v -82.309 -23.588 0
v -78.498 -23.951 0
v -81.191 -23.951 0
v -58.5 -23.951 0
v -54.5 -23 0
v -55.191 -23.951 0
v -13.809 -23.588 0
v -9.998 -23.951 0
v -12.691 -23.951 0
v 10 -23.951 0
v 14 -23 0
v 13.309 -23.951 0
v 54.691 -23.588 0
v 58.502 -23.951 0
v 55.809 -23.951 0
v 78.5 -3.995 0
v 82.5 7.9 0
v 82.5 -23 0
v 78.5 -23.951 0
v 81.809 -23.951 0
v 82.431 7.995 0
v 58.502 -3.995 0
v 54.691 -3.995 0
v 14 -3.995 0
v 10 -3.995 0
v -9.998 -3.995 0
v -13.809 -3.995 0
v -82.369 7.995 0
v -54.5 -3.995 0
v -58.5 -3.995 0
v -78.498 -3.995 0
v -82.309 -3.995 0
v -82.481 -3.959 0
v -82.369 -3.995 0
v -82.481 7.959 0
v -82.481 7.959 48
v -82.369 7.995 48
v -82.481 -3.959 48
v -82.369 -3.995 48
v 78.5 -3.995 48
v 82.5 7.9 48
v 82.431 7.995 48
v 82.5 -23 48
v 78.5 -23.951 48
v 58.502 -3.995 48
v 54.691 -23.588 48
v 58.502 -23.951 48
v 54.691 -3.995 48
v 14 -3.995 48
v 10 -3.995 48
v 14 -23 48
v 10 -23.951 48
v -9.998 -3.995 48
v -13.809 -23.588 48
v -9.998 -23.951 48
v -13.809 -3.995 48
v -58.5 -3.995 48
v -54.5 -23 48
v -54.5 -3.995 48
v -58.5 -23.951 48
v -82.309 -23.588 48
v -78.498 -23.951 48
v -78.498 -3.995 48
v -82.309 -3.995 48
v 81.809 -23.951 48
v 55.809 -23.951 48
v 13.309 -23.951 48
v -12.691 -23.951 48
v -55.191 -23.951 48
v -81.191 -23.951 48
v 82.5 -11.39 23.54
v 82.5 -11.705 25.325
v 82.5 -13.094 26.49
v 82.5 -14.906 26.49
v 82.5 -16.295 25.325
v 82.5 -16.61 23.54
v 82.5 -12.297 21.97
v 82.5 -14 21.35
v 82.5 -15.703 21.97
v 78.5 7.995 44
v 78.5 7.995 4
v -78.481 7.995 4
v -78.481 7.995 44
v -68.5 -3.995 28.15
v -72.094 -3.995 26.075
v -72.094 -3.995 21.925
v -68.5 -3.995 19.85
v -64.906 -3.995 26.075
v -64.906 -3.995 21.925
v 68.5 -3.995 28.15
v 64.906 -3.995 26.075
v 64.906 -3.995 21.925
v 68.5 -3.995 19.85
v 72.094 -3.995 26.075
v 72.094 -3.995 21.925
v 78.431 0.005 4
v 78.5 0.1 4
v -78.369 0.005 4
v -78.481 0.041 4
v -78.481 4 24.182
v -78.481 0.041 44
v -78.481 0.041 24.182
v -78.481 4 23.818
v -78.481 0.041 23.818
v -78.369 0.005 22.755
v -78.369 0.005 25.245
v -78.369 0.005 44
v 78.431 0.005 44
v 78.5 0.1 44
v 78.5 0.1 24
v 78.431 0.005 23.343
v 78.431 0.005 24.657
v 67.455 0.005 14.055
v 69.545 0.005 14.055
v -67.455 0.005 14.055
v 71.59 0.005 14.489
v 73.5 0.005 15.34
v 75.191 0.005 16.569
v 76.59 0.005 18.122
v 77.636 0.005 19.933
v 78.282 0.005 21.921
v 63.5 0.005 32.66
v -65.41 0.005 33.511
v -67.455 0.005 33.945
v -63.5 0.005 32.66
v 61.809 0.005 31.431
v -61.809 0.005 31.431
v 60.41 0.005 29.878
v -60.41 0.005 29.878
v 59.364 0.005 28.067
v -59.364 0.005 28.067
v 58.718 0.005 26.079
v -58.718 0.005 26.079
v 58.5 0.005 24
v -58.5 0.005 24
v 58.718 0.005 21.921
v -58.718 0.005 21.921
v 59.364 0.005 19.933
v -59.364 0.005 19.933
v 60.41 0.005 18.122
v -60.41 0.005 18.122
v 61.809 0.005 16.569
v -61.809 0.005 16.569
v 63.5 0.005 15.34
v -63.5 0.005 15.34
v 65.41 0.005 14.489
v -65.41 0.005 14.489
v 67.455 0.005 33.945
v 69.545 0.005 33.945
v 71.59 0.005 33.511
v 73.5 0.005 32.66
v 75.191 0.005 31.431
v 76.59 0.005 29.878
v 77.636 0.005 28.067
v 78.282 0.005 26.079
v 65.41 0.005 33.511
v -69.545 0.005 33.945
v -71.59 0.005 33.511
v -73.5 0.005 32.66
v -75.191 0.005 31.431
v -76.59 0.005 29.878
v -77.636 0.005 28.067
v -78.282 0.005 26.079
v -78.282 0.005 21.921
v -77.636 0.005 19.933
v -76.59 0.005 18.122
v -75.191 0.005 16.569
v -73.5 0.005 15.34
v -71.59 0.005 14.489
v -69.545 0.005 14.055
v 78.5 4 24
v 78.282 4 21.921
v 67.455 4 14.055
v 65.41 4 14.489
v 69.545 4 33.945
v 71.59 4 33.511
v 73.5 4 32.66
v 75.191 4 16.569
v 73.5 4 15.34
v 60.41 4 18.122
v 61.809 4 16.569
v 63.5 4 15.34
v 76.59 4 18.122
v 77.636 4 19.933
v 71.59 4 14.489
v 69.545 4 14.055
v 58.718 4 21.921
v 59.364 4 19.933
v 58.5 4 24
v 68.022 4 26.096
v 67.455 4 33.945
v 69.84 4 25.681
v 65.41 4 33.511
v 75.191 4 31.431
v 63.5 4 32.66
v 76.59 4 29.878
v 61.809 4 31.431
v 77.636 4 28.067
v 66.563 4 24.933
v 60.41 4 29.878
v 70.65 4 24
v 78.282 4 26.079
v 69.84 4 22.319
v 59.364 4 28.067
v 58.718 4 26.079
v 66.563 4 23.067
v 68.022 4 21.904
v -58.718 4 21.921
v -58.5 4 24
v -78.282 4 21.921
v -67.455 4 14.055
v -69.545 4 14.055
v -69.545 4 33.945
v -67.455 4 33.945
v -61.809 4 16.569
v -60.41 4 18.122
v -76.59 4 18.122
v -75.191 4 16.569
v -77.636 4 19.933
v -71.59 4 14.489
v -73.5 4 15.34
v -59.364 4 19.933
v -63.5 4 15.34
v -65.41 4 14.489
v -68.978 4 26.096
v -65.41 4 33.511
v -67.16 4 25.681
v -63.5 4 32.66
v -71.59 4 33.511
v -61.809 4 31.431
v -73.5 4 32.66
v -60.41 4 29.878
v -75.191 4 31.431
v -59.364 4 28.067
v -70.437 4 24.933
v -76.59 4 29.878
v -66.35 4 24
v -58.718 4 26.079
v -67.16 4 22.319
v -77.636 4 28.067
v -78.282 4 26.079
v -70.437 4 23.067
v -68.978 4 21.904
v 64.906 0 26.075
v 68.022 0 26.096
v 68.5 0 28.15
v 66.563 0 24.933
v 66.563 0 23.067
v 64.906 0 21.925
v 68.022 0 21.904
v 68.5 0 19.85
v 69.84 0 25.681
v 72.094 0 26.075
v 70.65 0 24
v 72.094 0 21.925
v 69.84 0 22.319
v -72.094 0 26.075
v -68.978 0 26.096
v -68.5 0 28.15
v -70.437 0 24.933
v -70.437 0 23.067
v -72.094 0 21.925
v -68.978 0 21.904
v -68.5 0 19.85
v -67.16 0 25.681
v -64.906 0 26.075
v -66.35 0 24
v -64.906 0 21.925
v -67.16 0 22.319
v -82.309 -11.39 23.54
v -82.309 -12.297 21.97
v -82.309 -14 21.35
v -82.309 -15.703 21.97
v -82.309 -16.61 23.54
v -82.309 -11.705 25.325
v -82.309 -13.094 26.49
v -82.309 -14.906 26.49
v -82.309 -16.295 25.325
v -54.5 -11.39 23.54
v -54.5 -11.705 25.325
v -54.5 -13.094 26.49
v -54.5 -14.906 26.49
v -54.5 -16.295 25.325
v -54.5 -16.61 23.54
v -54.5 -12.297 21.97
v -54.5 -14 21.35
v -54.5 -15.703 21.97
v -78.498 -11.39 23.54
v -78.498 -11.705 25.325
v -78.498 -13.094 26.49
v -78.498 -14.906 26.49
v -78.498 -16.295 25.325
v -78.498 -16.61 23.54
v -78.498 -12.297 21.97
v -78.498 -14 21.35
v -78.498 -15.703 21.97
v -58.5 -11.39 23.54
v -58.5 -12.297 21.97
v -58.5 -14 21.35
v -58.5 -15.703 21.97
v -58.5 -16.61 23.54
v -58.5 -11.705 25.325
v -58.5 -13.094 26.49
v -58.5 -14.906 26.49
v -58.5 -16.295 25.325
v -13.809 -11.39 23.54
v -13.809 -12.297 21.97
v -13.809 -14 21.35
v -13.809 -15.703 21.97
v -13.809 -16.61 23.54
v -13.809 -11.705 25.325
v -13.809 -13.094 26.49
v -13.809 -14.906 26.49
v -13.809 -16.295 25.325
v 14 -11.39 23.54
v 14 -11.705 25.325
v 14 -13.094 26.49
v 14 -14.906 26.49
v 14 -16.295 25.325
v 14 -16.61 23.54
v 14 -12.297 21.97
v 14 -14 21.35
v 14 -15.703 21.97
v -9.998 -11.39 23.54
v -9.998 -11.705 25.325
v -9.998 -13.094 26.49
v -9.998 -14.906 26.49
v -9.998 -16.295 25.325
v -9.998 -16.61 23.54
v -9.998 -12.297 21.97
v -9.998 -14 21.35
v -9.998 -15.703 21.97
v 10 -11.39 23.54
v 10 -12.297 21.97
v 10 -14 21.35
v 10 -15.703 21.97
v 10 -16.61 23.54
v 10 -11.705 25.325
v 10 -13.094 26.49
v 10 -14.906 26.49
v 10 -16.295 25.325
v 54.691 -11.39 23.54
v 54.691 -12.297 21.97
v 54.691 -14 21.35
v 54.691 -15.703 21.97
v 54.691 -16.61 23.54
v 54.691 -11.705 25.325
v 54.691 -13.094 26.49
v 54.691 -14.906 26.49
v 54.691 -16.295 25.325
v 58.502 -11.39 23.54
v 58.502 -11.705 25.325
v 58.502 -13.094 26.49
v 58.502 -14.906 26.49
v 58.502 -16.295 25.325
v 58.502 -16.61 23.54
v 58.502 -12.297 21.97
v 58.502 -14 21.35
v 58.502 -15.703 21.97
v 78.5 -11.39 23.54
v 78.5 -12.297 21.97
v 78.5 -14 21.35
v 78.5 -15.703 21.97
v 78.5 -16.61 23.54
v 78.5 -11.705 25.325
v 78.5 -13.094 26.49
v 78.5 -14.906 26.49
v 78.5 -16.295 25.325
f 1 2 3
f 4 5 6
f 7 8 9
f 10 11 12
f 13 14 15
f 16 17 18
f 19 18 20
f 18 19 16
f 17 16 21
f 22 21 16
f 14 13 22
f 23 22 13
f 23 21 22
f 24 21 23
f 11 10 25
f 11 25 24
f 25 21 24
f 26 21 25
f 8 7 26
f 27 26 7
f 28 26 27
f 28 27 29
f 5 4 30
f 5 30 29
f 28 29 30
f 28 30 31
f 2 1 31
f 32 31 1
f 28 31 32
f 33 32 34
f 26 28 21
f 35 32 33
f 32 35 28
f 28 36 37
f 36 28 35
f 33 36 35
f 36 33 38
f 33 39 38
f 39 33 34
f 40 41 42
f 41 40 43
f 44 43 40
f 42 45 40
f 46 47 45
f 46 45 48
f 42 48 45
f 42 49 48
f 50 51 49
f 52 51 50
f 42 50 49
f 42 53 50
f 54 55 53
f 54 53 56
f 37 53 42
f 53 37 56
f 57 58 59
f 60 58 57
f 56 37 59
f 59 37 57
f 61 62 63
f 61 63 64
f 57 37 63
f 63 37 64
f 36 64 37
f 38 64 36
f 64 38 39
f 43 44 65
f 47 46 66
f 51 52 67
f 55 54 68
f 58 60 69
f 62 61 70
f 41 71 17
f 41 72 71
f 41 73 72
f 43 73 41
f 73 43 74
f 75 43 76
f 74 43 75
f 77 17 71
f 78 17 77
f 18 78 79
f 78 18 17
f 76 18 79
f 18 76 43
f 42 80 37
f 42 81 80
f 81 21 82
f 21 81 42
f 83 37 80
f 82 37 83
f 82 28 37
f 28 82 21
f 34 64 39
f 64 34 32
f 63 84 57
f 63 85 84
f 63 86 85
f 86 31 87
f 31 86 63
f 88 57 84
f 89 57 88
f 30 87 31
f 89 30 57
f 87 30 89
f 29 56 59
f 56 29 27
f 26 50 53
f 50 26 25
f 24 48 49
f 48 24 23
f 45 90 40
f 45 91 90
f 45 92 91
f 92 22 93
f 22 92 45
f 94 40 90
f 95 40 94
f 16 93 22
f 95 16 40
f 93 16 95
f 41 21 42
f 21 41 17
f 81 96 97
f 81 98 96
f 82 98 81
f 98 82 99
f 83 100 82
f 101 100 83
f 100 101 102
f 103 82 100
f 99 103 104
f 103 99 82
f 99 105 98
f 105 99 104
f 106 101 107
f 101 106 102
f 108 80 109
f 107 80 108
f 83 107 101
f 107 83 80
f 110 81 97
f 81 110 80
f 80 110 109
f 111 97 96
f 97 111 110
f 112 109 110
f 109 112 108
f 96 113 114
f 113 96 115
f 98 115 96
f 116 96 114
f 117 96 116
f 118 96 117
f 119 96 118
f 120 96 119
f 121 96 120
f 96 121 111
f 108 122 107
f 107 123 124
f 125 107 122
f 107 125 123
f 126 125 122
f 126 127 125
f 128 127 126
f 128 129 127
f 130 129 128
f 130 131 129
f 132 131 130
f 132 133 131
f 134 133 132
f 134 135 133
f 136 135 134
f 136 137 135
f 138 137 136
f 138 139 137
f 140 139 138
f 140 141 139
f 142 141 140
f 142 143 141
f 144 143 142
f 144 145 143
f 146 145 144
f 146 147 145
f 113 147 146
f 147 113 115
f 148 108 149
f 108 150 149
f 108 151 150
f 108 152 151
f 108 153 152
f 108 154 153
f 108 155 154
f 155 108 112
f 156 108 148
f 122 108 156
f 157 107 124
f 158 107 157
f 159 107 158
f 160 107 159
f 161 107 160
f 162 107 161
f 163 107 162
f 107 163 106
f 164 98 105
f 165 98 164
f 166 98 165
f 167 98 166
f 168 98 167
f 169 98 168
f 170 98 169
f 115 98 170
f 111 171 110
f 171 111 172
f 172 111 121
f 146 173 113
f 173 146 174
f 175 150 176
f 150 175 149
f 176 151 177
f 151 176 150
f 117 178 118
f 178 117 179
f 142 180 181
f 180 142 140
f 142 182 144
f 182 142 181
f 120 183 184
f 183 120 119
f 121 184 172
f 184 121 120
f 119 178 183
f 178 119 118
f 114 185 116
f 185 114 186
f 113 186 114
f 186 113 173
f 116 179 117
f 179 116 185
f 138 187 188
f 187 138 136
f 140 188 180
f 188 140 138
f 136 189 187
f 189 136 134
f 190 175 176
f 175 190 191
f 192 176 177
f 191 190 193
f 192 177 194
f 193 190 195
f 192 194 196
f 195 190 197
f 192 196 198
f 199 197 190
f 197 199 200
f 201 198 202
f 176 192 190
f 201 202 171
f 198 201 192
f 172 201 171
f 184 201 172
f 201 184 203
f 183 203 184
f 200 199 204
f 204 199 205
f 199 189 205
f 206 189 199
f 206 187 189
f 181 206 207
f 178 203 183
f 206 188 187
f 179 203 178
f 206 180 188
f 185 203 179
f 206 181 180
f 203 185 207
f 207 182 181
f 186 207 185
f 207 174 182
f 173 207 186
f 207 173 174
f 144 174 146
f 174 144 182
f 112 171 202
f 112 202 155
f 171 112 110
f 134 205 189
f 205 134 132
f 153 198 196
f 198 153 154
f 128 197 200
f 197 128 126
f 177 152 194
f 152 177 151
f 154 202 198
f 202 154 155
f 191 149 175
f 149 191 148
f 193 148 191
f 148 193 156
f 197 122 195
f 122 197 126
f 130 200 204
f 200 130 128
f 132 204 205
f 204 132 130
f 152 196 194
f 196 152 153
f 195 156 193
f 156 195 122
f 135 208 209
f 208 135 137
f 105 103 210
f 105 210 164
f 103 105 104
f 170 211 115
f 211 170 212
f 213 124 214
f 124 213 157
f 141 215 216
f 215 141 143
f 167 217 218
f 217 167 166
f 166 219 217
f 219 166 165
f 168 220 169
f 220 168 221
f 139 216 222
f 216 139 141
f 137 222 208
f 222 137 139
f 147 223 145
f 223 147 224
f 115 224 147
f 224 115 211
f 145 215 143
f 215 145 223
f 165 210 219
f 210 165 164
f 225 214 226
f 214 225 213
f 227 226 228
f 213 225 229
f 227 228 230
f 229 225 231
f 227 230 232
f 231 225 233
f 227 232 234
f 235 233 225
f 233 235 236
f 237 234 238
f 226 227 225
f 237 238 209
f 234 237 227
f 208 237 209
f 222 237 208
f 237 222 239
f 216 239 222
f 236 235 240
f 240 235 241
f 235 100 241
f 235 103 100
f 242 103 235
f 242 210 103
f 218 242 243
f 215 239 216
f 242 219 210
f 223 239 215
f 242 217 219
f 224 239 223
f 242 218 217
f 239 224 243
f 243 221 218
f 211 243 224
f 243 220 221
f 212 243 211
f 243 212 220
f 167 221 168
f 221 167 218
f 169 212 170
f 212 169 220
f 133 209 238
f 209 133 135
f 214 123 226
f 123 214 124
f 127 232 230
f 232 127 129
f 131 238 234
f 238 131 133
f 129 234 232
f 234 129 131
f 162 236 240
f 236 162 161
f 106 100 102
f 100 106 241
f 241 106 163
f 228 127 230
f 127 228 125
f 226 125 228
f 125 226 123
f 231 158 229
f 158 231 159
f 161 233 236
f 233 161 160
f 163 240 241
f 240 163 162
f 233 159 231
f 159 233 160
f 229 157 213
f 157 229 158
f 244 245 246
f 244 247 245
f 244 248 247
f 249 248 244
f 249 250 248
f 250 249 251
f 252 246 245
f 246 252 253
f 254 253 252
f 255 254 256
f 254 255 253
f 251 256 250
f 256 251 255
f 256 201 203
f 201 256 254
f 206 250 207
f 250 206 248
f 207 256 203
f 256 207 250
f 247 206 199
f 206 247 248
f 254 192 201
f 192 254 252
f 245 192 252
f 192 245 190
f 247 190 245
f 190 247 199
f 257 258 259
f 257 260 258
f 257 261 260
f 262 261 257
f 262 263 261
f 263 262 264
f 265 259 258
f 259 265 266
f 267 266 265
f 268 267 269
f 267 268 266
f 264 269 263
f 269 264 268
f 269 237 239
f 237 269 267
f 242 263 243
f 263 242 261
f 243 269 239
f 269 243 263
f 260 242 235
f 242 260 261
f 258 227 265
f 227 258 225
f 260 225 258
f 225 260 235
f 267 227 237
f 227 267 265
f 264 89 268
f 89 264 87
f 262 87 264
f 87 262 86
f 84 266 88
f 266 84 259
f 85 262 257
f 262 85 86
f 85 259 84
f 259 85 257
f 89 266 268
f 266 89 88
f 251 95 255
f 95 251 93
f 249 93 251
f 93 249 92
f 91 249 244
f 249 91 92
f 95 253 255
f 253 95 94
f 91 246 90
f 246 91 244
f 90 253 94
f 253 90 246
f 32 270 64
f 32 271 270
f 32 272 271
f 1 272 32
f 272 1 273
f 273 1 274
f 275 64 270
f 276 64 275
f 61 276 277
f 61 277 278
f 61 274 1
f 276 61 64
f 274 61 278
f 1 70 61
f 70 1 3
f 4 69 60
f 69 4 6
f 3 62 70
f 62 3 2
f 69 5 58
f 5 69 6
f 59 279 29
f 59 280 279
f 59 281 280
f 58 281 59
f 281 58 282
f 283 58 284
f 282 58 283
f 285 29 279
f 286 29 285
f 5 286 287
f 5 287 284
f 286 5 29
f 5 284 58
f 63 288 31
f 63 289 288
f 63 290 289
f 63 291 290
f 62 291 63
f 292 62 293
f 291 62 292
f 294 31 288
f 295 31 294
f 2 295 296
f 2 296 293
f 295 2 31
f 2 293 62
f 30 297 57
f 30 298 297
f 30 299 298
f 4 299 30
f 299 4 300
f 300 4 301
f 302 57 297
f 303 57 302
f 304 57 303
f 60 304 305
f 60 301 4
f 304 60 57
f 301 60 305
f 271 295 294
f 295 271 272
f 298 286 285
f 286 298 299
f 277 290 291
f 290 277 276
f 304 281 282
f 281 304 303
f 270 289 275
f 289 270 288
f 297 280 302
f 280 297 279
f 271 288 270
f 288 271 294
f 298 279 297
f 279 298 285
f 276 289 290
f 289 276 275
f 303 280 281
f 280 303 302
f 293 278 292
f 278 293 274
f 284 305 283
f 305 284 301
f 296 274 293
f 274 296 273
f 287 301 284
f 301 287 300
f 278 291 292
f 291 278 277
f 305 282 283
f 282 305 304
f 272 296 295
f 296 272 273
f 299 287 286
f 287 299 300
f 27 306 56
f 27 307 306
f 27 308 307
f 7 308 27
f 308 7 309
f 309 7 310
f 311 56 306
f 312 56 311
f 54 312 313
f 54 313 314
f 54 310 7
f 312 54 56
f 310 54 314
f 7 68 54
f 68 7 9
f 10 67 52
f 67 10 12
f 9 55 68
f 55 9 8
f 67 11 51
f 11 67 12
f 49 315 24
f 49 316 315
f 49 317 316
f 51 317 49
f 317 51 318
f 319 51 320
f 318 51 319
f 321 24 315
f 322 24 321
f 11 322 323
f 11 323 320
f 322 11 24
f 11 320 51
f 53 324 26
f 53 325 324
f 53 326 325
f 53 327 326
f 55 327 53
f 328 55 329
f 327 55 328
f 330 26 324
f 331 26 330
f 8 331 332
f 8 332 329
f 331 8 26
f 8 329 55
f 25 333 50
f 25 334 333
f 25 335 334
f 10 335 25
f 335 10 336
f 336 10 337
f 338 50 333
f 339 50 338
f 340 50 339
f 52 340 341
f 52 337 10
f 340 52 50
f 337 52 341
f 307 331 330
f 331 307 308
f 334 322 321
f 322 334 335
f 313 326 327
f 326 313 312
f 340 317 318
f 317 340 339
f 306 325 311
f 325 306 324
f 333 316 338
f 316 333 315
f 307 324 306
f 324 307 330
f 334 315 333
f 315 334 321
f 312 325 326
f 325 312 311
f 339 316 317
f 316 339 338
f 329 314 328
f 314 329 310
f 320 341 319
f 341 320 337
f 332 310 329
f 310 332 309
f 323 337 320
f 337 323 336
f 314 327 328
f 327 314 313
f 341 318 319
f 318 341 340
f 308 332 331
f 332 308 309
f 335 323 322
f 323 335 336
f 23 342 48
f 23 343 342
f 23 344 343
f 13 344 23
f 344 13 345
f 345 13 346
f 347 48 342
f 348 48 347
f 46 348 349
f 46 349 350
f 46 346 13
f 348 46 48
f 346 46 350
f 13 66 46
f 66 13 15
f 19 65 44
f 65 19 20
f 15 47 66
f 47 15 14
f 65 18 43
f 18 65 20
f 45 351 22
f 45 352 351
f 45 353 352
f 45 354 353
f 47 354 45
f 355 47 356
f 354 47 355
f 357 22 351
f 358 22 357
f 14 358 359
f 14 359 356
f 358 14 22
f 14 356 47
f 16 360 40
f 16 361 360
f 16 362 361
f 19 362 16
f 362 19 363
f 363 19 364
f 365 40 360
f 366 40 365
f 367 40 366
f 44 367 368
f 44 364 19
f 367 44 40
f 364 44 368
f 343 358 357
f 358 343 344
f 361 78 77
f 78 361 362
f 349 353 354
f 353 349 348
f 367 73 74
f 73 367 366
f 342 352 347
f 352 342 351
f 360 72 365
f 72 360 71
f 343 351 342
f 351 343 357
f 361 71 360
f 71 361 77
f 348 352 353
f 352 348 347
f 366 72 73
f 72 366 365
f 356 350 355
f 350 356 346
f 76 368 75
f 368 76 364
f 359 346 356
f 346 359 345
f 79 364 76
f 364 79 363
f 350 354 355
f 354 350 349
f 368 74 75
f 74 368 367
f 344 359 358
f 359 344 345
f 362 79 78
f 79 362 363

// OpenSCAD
// file: parameter.scad
//----------------Global Parameter---------------------------------------
nema17_height=40;
nema17_width=42;
nema17_shftDia=5;
nema17_shftLen=28;
nema17_holeDist=31;
Nema17_gearDia=23;

slotWthick=4;

//-------Parameter triplePytho------------------------------------------------

strScale=800;
strDia=3.5;
strPosX=20;
strPosY=-20;
slotXY=20;
nStr=3;


tuner_bDi=8;
tuner_bDo=22.2;
tuner_bZ=10;
tuner_rThick=5;
tuner_tDia=strPosX*2;// (big)
//tuner_tDia=tuner_bDo+8;// (small)
tuner_leverZ=10;
tuner_zPos=225;
tuner_strDia=strDia[0];
tuner_leverY=35;

//----------Kickup----------------------------------------------------

kickup_baseX=17;
kickup_baseY=13;
kickup_zAdjDia=3.3;
kickup_zAdjL=10;
kickup_zAdjDist=10.5;
kickup_zAdjOff=4;
//------------------------------------------------------------------------

slide_cpDst=1.5;
slide_rackPosX=(55-12.5);

m3Dia=3.3;
m3NutD=6.6;
m4Dia=4.3;
m4NutD=8.3;
m4NutZ=5;
m5Dia=5.3;
m5HeadD=9.6;

edgeR=3;

mnt_pcbA_X=157;
mnt_pcbA_Y=101;

//---------End Parameter triplePytho-----------------------------------------------


//-------Parameter GHarp----------------------------------------------------

//strScale=650;
//strDia=3;
//strPosX=20;
//strPosY=-20;
//slotXY=20;
//nStr=3;
//
//
//
//tuner_bDi=8;
//tuner_bDo=22.2;
//tuner_bZ=10;
//tuner_rThick=5;
////tuner_tDia=strPosX*2; (big)
//tuner_tDia=strPosX*2-10;
//tuner_leverZ=10;
//tuner_zPos=225;
//tuner_strDia=strDia[0];
//tuner_leverY=35;
//
////----------Kickup----------------------------------------------------
//
//kickup_baseX=17;
//kickup_baseY=13;
//kickup_zAdjDia=3.3;
//kickup_zAdjL=10;
//kickup_zAdjDist=10.5;
//kickup_zAdjOff=4;
////------------------------------------------------------------------------
//
//slide_cpDst=1.5;
//slide_rackPosX=(55-12.5);
//
//m3Dia=3.3;
//m3NutD=6.6;
//m4Dia=4.3;
//m4NutD=8.3;
//m4NutZ=5;
//m5Dia=5.3;
//m5HeadD=9.6;
//
//edgeR=3;
//
//gearXPos=57;
//gearYPos=0;
//gearZPos=360;
//
//rackScrD=20;
//rack_X=13;
//rack_Y=15.5;
//rack_extOffX=0;
//
//bearGearD=25;
//mntGrD=20.5; //mount gear distance
//
//mnt_pcbA_X=157;
//mnt_pcbA_Y=101;

//---------End Parameter GHarp-----------------------------------------------


//-------Parameter Bass----------------------------------------------------

//strScale=650;
//strDia=4;
//strPosX=20;
//strPosY=-20;
//slotXY=20;
//
//
//
//tuner_bDi=8;
//tuner_bDo=22.2;
//tuner_bZ=10;
//tuner_rThick=5;
////tuner_tDia=strPosX*2; (big)
//tuner_tDia=strPosX*2;
//tuner_leverZ=10;
//tuner_zPos=225;
//tuner_strDia=strDia[0];
//tuner_leverY=35;
//
////----------Kickup----------------------------------------------------
//
//
//kickup_baseX=22;
//kickup_baseY=15;
//kickup_zAdjDia=3.3;
//kickup_zAdjL=10;
//kickup_zAdjDist=13;
//kickup_zAdjOff=4;
//
//
//slide_cpDst=1.5;
//slide_rackPosX=(55-12.5);
//
//m3NutD=6.6;
//m4Dia=4.3;
//m4NutD=8.3;
//m5Dia=5.3;
//
//edgeR=3;
//
//gearXPos=57;
//gearYPos=0;
//gearZPos=360;
//
//rackScrD=20;
//rack_X=13;
//rack_Y=15.5;
//rack_extOffX=0;
//
//bearGearD=25;
//mntGrD=20.5; //mount gear distance
//
////---------End Bass-----------------------------------------------
// file: libs/rcube.scad
module rcube(size,radius){
linear_extrude(height=size[2])
if(radius>0){
hull()
{
    // place 4 circles in the corners, with the given radius
    translate([(-size[0]/2)+(radius), (-size[1]/2)+(radius), 0])
    circle(r=radius);

    translate([(size[0]/2)-(radius), (-size[1]/2)+(radius), 0])
    circle(r=radius);

    translate([(-size[0]/2)+(radius), (size[1]/2)-(radius), 0])
    circle(r=radius);

    translate([(size[0]/2)-(radius), (size[1]/2)-(radius), 0])
    circle(r=radius);
}
}
if(radius==0){
translate([0,0,size[2]/2])cube(size,center=true);
}
}
// main file
include <libs/rcube.scad>;
include <parameter.scad>;

pcbX=mnt_pcbA_X;
pcbY=8;
pcbZ=40;
pcbZu=4;

wtPcb=4;
wtSlot=4;

z=pcbZ+wtPcb*2;
x=pcbX+wtSlot*2;

btmTh=2;




difference(){
union(){
difference(){
translate([0,pcbY/2-wtSlot/2,0])rcube([x,pcbY+wtSlot,z],0.1);
translate([0,pcbY/2+wtSlot/2,wtPcb])rcube([pcbX,pcbY+wtSlot,pcbZ],0.1);
}

translate([pcbX/2-slotXY/2,-1,z/2])rotate([-90,0,0])cylinder(d=slotXY,h=pcbZu+1);
translate([-(pcbX/2-slotXY/2),-1,z/2])rotate([-90,0,0])cylinder(d=slotXY,h=pcbZu+1);

}

translate([pcbX/2-slotXY/2,0,z/2])rotate([-90,0,0])cylinder(d=m4Dia,h=pcbZu+btmTh);
translate([-(pcbX/2-slotXY/2),0,z/2])rotate([-90,0,0])cylinder(d=m4Dia,h=pcbZu+btmTh);


translate([-(pcbX/2-slotXY/2),-wtSlot,z/2])rotate([-90,30,0])cylinder(d=m4NutD,h=wtSlot,$fn=6);
translate([pcbX/2-slotXY/2,-wtSlot,z/2])rotate([-90,30,0])cylinder(d=m4NutD,h=wtSlot,$fn=6);

}

for (i = [0 : nStr-1]) {
translate([-x/2+slotXY/2+wtSlot+i*x/2-i*(slotXY+wtSlot*2)/2,0,0])difference(){
    
translate([0,-(slotXY+wtSlot)/2,0])rcube([slotXY+wtSlot*2,slotXY+wtSlot,z],1);

translate([0,-(slotXY+wtSlot*2)/2,-1])rcube([slotXY,slotXY+wtSlot*2,pcbZ+wtSlot*2+2],0.01);

translate([0,-(slotXY+wtSlot*2)/2,z/2])rotate([0,90,0])cylinder(d=m5Dia,h=slotXY*2,center=true);
}
}
